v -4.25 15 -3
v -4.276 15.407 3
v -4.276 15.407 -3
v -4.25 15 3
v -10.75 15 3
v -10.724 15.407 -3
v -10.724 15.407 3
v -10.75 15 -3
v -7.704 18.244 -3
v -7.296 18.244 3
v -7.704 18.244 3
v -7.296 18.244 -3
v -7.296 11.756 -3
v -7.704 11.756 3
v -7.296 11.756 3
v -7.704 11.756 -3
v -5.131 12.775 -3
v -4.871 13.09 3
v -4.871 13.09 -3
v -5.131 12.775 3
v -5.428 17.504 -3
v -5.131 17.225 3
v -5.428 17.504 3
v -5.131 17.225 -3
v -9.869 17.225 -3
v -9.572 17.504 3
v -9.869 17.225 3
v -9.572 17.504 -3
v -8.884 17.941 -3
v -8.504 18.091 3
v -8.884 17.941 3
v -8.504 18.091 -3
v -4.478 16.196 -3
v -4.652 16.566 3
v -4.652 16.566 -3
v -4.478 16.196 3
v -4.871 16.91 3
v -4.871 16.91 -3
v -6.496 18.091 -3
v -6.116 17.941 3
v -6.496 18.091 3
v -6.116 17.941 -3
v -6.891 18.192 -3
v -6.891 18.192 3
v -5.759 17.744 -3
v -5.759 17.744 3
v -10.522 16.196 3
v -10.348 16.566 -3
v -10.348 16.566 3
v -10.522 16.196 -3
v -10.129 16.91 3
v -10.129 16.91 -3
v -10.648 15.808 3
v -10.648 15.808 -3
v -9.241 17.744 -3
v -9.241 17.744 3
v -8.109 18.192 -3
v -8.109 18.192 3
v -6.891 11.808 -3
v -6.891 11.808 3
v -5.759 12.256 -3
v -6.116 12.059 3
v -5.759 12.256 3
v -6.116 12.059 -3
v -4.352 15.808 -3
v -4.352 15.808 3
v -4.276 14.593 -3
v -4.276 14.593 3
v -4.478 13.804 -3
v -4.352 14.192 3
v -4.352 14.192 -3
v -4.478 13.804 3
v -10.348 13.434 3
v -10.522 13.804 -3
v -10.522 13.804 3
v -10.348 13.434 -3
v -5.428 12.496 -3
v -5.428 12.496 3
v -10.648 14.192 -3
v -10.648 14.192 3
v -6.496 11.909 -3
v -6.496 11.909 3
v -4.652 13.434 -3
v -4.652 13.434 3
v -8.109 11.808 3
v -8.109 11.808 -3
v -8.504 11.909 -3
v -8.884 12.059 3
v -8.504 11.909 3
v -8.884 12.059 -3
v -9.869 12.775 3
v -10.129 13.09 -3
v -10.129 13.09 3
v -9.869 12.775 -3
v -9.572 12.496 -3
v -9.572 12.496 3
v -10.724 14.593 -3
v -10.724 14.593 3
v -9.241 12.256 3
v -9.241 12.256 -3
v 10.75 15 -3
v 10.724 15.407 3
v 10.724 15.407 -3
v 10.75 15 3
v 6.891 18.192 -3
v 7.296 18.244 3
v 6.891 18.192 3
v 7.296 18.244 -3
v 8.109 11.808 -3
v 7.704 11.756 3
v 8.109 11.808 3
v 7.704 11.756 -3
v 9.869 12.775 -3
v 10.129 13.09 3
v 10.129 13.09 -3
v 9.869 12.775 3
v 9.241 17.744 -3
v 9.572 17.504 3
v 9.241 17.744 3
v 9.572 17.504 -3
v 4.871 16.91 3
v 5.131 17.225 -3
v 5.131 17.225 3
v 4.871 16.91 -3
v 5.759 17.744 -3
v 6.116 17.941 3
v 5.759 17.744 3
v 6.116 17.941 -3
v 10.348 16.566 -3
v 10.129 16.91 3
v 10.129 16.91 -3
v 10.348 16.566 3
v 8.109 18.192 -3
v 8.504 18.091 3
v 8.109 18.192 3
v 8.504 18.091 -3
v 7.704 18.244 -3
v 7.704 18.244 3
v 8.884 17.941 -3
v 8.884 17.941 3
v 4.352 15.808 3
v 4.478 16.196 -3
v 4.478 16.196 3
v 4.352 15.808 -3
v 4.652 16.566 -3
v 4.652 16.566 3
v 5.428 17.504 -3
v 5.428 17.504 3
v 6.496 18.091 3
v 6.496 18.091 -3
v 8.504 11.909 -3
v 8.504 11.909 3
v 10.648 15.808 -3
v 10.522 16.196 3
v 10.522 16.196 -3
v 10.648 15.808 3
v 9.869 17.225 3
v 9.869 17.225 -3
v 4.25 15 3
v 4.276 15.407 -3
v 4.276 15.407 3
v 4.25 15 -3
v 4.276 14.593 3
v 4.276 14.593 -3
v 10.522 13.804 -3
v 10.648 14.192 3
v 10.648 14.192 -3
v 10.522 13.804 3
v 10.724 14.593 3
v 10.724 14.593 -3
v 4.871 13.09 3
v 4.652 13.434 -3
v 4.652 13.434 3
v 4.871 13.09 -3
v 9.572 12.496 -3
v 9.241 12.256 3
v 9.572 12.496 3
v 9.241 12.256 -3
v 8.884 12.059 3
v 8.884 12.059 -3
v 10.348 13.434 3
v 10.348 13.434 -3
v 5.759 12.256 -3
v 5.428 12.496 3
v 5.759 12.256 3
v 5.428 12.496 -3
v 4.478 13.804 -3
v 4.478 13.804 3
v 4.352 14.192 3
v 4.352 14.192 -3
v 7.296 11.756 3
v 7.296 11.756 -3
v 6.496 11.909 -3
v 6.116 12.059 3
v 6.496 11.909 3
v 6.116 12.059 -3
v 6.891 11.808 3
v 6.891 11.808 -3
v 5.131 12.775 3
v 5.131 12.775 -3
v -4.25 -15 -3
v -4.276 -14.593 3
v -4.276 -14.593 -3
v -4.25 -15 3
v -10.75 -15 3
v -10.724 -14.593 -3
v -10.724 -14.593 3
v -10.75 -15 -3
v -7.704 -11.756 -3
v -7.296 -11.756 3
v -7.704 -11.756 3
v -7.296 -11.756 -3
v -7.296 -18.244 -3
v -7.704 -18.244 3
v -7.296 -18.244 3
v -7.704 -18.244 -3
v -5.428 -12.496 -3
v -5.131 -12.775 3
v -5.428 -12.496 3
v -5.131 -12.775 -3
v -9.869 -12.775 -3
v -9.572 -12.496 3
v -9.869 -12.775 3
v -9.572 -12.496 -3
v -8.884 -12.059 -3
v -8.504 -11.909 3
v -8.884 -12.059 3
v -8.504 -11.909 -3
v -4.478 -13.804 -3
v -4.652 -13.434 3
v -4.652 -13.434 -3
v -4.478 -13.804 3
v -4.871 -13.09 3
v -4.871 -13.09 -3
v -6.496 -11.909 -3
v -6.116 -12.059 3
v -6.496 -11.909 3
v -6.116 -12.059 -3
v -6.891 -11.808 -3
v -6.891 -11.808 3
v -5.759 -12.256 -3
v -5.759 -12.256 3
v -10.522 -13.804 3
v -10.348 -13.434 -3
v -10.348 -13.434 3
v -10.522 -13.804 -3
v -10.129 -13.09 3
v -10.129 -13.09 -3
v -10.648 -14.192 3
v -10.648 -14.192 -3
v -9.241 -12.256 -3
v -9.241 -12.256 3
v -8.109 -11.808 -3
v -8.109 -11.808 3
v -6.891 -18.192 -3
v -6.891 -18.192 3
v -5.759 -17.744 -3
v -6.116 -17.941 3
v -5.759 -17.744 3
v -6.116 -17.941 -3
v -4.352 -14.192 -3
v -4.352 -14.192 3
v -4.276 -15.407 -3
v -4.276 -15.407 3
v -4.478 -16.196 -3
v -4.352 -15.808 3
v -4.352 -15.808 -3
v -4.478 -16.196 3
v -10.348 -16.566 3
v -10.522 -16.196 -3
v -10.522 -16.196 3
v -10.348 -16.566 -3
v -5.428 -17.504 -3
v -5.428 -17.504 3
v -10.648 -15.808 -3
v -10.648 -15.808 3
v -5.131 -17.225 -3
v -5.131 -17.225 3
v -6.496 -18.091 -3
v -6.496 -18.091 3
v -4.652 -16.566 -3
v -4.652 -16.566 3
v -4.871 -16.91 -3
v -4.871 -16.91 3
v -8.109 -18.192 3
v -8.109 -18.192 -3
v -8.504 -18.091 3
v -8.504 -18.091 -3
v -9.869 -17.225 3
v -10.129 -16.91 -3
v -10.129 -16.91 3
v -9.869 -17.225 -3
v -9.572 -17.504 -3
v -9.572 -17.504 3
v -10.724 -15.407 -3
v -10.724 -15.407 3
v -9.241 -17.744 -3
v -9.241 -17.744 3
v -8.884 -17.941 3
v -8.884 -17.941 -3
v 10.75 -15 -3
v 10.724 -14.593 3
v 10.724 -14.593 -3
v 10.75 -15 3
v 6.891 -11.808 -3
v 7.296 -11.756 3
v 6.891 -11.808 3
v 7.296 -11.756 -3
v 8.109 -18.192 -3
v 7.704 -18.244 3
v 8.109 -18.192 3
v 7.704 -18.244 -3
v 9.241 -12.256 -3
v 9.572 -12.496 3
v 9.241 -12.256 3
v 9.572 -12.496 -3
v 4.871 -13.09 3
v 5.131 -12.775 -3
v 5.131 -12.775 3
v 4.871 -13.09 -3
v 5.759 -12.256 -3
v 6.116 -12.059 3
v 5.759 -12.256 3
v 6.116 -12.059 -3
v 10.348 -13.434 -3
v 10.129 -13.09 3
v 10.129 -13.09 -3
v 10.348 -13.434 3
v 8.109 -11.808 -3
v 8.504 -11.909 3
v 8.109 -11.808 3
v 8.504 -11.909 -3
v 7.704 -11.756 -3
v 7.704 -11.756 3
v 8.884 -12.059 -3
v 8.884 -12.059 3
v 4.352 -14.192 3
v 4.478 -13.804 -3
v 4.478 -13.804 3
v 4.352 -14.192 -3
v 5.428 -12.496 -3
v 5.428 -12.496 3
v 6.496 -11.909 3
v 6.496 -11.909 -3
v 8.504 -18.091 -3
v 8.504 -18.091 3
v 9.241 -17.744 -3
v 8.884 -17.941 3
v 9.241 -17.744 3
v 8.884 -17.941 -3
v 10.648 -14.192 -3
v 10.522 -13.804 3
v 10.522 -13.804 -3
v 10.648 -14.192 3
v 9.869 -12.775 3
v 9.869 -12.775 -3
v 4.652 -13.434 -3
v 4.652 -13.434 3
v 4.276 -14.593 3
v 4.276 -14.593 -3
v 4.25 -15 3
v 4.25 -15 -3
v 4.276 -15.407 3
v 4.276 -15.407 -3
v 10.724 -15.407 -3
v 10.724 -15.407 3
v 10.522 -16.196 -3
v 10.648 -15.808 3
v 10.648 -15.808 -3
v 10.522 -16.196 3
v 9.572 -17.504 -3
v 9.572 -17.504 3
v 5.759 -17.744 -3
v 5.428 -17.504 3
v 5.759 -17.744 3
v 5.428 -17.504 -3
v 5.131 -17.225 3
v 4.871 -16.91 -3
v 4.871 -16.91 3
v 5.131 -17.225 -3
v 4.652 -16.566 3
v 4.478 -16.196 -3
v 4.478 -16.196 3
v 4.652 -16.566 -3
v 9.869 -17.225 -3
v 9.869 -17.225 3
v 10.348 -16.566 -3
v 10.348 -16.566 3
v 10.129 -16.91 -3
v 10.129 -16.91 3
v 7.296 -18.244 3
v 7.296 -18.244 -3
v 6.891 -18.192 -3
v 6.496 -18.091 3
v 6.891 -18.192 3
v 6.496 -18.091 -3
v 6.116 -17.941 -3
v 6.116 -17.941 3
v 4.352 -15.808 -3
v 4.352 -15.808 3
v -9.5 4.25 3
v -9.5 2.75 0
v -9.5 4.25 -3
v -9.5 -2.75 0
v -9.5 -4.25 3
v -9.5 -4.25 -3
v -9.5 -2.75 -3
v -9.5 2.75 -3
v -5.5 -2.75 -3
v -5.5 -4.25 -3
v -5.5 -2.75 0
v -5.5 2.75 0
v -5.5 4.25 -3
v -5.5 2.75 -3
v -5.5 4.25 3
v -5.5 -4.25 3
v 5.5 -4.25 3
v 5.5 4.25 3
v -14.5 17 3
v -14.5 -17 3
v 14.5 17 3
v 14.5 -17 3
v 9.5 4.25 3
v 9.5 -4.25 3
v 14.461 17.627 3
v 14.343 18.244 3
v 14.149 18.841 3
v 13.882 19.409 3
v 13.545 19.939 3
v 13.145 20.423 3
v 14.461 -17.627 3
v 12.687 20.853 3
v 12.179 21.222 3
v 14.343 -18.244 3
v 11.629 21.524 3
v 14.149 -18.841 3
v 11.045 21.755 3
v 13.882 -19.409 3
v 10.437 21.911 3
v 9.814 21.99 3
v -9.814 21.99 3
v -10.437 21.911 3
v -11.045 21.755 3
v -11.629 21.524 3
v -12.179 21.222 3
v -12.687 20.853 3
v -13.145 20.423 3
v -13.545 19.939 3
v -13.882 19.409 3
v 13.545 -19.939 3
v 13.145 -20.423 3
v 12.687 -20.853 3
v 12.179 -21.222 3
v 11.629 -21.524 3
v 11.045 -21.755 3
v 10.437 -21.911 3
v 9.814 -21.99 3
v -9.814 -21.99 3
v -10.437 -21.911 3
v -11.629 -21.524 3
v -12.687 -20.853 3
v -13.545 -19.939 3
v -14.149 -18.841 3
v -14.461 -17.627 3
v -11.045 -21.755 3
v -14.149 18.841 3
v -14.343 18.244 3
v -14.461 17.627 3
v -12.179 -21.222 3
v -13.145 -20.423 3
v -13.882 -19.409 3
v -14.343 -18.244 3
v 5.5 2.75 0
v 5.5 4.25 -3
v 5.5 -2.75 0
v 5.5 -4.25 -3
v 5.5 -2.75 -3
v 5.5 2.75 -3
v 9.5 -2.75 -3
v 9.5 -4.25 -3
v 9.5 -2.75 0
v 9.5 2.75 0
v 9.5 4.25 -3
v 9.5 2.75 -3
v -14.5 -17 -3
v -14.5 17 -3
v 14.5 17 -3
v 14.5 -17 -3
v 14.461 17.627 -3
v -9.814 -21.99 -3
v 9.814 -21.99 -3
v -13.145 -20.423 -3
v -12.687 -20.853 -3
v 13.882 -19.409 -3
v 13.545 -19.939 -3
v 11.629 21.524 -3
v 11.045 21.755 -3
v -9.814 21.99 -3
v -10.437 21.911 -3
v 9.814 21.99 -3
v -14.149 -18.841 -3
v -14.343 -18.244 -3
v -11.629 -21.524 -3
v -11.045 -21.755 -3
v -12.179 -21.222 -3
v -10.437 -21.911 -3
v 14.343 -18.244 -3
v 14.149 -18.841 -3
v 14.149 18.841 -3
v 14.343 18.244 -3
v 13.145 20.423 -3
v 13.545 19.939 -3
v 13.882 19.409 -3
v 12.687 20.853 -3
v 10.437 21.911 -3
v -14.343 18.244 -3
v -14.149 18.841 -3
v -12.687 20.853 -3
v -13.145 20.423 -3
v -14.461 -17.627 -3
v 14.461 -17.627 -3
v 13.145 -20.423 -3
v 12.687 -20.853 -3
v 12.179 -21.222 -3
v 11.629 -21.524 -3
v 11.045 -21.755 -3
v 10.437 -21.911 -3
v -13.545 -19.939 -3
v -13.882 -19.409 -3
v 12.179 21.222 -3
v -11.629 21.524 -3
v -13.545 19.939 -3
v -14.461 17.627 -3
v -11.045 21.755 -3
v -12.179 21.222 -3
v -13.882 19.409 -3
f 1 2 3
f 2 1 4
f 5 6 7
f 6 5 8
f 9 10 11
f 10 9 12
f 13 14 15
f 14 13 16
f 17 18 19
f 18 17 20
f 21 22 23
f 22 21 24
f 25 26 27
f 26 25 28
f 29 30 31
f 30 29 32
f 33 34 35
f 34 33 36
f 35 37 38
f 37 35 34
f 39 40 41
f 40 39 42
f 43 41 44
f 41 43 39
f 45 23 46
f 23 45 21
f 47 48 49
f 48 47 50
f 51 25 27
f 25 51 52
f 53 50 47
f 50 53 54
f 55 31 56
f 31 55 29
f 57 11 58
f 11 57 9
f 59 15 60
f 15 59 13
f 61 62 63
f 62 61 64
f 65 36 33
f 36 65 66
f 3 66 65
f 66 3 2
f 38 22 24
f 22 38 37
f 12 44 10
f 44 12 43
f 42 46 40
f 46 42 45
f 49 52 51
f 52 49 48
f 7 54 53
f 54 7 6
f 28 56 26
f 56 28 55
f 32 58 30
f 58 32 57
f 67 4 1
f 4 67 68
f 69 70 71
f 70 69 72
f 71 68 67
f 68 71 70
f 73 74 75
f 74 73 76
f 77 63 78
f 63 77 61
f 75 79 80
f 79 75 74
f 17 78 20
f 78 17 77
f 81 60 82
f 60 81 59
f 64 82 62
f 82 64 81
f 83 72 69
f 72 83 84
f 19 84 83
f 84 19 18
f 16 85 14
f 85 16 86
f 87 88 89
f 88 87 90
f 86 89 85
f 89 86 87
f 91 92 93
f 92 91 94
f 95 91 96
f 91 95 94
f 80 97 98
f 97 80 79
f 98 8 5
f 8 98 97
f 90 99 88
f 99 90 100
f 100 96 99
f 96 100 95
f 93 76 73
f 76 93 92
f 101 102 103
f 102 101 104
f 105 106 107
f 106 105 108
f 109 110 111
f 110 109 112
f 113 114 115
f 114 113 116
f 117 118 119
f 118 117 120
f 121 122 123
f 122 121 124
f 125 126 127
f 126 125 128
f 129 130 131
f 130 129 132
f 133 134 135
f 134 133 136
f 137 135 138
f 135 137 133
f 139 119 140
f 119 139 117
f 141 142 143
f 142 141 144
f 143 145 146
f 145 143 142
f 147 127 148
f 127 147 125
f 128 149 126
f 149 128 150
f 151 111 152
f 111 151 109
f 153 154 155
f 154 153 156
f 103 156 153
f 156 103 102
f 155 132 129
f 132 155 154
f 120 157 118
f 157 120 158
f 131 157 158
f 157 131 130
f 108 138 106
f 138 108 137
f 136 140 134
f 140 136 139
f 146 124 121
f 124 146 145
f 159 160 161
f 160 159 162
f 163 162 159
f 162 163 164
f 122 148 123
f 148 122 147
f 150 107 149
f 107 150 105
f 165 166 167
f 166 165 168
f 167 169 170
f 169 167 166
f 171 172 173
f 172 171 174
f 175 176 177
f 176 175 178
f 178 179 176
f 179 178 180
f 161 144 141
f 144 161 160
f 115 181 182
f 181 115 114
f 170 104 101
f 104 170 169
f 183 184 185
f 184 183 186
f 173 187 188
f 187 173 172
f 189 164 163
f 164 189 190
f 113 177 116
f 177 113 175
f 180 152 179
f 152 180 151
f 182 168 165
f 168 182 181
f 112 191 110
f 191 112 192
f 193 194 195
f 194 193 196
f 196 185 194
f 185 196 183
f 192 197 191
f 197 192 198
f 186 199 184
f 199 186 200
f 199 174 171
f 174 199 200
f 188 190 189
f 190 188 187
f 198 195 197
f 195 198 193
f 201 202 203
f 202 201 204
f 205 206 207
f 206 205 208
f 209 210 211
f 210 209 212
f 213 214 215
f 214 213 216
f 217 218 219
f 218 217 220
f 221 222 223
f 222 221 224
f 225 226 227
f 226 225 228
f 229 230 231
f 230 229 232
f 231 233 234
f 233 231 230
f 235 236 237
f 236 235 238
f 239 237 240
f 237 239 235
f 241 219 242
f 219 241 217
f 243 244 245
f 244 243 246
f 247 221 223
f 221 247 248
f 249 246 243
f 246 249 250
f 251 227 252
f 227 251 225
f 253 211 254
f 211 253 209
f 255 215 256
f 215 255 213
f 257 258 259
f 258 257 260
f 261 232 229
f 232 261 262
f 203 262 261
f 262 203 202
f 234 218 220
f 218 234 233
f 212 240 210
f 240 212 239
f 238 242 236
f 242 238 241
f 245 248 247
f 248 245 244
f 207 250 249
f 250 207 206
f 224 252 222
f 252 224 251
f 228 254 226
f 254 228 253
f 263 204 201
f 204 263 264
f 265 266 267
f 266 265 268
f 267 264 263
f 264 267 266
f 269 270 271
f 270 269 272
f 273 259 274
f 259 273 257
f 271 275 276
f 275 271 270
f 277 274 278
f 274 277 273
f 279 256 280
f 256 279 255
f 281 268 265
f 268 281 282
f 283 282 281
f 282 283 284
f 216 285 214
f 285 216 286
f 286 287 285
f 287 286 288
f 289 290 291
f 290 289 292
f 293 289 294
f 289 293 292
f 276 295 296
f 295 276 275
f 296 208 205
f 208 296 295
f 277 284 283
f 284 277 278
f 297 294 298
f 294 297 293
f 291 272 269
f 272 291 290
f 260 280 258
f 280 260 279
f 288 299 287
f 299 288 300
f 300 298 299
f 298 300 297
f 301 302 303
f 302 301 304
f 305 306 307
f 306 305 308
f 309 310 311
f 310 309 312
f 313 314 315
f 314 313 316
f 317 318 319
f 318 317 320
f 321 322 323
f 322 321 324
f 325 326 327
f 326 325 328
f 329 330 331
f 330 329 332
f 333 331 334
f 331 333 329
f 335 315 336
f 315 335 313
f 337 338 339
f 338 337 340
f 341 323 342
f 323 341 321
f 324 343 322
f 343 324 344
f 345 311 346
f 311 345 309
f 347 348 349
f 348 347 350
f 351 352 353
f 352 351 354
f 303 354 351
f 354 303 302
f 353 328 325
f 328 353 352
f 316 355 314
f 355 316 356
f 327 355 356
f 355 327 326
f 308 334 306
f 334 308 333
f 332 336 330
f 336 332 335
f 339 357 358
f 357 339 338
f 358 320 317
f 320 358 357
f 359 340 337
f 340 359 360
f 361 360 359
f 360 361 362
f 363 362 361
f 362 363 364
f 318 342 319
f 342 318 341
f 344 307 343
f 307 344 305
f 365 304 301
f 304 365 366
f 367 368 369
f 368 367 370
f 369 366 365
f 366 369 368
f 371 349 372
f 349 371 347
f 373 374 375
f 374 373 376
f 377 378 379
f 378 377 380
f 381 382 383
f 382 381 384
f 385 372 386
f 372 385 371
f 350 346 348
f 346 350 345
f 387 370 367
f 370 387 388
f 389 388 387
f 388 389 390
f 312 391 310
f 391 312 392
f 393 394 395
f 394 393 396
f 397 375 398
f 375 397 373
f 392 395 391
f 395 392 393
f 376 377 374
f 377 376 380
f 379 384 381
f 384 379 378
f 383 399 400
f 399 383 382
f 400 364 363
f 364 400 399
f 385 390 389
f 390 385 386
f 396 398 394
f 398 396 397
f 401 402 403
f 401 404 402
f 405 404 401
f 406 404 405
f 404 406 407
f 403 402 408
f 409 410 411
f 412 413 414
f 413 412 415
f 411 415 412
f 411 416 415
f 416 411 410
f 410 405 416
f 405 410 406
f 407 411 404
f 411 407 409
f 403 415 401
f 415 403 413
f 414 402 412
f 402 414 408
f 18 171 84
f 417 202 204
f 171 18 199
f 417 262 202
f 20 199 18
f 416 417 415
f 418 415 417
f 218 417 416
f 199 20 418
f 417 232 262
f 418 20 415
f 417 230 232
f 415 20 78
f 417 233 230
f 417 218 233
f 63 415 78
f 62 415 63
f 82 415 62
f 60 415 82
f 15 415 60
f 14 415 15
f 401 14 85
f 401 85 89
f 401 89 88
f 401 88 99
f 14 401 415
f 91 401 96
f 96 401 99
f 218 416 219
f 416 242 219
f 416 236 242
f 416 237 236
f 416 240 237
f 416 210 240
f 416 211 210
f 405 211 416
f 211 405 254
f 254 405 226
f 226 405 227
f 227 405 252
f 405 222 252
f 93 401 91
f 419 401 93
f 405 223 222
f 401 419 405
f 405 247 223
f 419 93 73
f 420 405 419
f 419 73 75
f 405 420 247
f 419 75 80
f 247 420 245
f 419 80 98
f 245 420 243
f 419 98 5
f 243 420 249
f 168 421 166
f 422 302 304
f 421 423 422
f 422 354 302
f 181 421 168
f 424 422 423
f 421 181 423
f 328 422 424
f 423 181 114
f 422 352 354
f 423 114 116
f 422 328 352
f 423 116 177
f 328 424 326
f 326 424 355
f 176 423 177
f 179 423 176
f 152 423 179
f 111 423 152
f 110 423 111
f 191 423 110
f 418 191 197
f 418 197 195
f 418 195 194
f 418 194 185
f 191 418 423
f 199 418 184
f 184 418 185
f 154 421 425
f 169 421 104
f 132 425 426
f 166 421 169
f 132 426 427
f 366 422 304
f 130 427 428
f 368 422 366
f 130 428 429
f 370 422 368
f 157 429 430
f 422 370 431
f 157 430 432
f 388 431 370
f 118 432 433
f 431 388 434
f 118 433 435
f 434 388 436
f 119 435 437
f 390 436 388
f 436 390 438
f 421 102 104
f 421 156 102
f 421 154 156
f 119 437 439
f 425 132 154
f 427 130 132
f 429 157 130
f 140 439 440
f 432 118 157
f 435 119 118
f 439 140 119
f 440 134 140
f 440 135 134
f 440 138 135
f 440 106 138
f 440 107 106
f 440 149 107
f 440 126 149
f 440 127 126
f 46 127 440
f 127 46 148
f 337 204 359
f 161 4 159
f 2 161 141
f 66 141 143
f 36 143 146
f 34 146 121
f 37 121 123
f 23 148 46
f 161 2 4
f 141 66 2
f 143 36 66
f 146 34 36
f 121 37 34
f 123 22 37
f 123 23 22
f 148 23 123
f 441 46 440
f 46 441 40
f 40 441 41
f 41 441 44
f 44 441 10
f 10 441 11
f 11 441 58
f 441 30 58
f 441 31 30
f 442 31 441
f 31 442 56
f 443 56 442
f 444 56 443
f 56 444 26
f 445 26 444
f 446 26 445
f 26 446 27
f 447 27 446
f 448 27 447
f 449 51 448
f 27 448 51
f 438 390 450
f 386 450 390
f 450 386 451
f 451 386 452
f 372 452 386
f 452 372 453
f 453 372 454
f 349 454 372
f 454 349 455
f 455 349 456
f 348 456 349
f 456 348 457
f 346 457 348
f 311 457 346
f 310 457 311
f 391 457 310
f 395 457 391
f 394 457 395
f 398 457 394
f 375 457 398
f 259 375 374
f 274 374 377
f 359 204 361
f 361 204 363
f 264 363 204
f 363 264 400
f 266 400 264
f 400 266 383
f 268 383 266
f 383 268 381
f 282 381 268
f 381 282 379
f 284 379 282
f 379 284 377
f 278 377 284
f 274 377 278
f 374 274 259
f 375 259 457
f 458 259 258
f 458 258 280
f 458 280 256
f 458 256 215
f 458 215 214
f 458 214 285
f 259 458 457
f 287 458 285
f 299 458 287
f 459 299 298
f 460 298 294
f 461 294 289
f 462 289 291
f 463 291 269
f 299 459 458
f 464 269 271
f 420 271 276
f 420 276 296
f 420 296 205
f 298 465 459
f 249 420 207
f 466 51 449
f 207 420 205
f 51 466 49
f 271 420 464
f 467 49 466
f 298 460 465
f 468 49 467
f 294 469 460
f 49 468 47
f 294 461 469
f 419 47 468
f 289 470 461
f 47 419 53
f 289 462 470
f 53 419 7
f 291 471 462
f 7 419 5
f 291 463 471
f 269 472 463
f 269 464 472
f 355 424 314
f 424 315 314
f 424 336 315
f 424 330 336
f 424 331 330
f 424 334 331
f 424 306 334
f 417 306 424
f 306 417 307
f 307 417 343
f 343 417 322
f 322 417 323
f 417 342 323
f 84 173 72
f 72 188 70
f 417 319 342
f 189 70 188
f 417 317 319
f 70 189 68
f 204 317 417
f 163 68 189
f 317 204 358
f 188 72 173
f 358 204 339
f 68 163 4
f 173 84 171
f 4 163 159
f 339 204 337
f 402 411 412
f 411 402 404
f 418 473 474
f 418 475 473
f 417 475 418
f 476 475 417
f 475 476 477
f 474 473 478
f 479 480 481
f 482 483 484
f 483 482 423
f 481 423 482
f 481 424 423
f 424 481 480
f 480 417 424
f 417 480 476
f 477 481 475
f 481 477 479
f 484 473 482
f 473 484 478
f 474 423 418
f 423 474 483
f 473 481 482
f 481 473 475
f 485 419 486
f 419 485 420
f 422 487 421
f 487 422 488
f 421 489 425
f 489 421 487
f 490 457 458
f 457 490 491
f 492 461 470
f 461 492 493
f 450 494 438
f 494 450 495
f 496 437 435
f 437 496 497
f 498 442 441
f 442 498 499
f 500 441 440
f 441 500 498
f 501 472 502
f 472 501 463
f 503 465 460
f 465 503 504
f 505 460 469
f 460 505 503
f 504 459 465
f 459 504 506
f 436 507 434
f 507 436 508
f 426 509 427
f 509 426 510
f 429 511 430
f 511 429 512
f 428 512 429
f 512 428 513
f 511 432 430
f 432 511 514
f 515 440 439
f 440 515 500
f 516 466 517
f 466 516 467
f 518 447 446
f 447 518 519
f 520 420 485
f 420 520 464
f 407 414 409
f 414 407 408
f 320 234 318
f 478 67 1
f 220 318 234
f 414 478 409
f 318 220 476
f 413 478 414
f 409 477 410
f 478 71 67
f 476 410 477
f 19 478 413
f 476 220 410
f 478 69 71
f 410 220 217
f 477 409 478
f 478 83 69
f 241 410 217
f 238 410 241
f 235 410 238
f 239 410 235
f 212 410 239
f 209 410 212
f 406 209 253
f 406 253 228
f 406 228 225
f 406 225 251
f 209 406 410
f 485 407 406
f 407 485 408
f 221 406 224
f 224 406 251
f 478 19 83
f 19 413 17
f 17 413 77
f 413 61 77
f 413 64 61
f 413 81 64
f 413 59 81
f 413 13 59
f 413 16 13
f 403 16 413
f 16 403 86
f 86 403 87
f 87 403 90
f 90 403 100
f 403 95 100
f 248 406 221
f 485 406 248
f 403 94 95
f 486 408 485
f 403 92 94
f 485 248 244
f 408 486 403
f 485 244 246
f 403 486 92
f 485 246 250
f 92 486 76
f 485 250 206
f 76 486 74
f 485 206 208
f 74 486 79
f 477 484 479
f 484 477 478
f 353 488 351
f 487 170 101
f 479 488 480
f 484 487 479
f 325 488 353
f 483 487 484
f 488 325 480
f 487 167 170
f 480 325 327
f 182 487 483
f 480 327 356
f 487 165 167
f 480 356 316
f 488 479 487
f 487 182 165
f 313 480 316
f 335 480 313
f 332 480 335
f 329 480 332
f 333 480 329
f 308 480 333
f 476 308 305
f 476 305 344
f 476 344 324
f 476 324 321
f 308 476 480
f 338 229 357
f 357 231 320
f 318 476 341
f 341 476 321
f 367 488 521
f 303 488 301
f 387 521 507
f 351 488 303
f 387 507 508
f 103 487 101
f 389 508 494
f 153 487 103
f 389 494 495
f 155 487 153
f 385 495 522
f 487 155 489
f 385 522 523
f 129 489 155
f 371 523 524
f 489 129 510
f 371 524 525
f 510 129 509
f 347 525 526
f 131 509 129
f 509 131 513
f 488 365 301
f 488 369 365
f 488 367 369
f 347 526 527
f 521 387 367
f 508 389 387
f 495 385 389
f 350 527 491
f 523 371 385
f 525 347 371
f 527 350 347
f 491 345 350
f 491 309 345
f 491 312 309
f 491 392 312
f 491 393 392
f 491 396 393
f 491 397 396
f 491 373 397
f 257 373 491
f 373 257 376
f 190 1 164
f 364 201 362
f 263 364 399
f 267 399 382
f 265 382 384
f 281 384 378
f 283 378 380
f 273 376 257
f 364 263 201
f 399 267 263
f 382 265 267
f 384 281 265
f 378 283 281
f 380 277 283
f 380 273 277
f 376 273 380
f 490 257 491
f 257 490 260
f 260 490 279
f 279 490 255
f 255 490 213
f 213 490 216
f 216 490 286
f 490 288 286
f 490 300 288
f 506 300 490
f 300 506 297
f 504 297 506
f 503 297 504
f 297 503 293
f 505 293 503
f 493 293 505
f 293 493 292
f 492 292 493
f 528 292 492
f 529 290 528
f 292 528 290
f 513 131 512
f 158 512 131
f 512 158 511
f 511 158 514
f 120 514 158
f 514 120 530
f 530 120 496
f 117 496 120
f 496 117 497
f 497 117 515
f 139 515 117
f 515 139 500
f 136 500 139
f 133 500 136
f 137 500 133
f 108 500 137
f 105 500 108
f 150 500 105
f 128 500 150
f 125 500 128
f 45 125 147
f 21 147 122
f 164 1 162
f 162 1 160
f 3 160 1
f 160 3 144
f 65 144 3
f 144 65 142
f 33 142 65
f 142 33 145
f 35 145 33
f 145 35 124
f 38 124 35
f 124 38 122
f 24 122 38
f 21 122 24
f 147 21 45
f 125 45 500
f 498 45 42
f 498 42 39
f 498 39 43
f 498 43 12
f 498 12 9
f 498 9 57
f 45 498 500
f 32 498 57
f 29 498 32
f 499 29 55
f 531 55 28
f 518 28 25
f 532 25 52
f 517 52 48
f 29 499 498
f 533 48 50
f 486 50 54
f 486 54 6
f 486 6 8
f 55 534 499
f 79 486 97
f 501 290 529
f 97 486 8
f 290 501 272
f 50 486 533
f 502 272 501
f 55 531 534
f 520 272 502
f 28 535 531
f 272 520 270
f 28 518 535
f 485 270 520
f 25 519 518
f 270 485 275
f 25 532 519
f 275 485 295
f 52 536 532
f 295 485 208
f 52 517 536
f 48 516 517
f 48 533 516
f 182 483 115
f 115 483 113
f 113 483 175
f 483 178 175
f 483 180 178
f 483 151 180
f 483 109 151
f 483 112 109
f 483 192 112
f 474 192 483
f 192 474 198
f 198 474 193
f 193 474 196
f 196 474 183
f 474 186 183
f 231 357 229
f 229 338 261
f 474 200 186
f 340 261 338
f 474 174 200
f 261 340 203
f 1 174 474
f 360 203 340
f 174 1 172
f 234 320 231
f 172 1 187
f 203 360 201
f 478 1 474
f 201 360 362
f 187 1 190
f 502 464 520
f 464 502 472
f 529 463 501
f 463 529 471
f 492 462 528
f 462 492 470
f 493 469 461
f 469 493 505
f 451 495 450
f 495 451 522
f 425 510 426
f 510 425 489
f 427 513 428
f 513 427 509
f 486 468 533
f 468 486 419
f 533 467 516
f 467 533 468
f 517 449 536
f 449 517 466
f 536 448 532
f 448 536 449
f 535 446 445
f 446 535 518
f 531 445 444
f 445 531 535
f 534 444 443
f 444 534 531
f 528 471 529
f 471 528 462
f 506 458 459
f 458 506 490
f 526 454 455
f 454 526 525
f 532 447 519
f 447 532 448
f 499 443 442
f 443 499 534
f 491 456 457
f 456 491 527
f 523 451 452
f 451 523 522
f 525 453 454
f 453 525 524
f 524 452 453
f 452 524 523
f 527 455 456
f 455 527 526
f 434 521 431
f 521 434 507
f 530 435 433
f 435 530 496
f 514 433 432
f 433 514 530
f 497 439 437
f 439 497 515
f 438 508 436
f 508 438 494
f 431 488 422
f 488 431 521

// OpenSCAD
$fn = 50;


difference() {
	union() {
		translate(v = [0, 0, -3.0000000000]) {
			rotate(a = [0, 0, 0]) {
				hull() {
					translate(v = [-9.5000000000, 17.0000000000, 0]) {
						rotate(a = [0, 0, 0]) {
							translate(v = [0, 0, 0]) {
								rotate(a = [0, 0, 0]) {
									cylinder(h = 6, r = 5);
								}
							}
						}
					}
					translate(v = [9.5000000000, 17.0000000000, 0]) {
						rotate(a = [0, 0, 0]) {
							translate(v = [0, 0, 0]) {
								rotate(a = [0, 0, 0]) {
									cylinder(h = 6, r = 5);
								}
							}
						}
					}
					translate(v = [-9.5000000000, -17.0000000000, 0]) {
						rotate(a = [0, 0, 0]) {
							translate(v = [0, 0, 0]) {
								rotate(a = [0, 0, 0]) {
									cylinder(h = 6, r = 5);
								}
							}
						}
					}
					translate(v = [9.5000000000, -17.0000000000, 0]) {
						rotate(a = [0, 0, 0]) {
							translate(v = [0, 0, 0]) {
								rotate(a = [0, 0, 0]) {
									cylinder(h = 6, r = 5);
								}
							}
						}
					}
				}
			}
		}
	}
	union() {
		translate(v = [-7.5000000000, 15.0000000000, -125.0000000000]) {
			rotate(a = [0, 0, 0]) {
				cylinder(h = 250, r = 3.2500000000);
			}
		}
		translate(v = [7.5000000000, 15.0000000000, -125.0000000000]) {
			rotate(a = [0, 0, 0]) {
				cylinder(h = 250, r = 3.2500000000);
			}
		}
		translate(v = [-7.5000000000, -15.0000000000, -125.0000000000]) {
			rotate(a = [0, 0, 0]) {
				cylinder(h = 250, r = 3.2500000000);
			}
		}
		translate(v = [7.5000000000, -15.0000000000, -125.0000000000]) {
			rotate(a = [0, 0, 0]) {
				cylinder(h = 250, r = 3.2500000000);
			}
		}
		translate(v = [-9.5000000000, -4.2500000000, -50]) {
			rotate(a = [0, 0, 0]) {
				cube(size = [4, 1.5000000000, 100]);
			}
		}
		translate(v = [-9.5000000000, 2.7500000000, -50]) {
			rotate(a = [0, 0, 0]) {
				cube(size = [4, 1.5000000000, 100]);
			}
		}
		translate(v = [-9.5000000000, -4.2500000000, 0]) {
			rotate(a = [0, 0, 0]) {
				cube(size = [4, 8.5000000000, 3]);
			}
		}
		translate(v = [5.5000000000, -4.2500000000, -50]) {
			rotate(a = [0, 0, 0]) {
				cube(size = [4, 1.5000000000, 100]);
			}
		}
		translate(v = [5.5000000000, 2.7500000000, -50]) {
			rotate(a = [0, 0, 0]) {
				cube(size = [4, 1.5000000000, 100]);
			}
		}
		translate(v = [5.5000000000, -4.2500000000, 0]) {
			rotate(a = [0, 0, 0]) {
				cube(size = [4, 8.5000000000, 3]);
			}
		}
	}
}
